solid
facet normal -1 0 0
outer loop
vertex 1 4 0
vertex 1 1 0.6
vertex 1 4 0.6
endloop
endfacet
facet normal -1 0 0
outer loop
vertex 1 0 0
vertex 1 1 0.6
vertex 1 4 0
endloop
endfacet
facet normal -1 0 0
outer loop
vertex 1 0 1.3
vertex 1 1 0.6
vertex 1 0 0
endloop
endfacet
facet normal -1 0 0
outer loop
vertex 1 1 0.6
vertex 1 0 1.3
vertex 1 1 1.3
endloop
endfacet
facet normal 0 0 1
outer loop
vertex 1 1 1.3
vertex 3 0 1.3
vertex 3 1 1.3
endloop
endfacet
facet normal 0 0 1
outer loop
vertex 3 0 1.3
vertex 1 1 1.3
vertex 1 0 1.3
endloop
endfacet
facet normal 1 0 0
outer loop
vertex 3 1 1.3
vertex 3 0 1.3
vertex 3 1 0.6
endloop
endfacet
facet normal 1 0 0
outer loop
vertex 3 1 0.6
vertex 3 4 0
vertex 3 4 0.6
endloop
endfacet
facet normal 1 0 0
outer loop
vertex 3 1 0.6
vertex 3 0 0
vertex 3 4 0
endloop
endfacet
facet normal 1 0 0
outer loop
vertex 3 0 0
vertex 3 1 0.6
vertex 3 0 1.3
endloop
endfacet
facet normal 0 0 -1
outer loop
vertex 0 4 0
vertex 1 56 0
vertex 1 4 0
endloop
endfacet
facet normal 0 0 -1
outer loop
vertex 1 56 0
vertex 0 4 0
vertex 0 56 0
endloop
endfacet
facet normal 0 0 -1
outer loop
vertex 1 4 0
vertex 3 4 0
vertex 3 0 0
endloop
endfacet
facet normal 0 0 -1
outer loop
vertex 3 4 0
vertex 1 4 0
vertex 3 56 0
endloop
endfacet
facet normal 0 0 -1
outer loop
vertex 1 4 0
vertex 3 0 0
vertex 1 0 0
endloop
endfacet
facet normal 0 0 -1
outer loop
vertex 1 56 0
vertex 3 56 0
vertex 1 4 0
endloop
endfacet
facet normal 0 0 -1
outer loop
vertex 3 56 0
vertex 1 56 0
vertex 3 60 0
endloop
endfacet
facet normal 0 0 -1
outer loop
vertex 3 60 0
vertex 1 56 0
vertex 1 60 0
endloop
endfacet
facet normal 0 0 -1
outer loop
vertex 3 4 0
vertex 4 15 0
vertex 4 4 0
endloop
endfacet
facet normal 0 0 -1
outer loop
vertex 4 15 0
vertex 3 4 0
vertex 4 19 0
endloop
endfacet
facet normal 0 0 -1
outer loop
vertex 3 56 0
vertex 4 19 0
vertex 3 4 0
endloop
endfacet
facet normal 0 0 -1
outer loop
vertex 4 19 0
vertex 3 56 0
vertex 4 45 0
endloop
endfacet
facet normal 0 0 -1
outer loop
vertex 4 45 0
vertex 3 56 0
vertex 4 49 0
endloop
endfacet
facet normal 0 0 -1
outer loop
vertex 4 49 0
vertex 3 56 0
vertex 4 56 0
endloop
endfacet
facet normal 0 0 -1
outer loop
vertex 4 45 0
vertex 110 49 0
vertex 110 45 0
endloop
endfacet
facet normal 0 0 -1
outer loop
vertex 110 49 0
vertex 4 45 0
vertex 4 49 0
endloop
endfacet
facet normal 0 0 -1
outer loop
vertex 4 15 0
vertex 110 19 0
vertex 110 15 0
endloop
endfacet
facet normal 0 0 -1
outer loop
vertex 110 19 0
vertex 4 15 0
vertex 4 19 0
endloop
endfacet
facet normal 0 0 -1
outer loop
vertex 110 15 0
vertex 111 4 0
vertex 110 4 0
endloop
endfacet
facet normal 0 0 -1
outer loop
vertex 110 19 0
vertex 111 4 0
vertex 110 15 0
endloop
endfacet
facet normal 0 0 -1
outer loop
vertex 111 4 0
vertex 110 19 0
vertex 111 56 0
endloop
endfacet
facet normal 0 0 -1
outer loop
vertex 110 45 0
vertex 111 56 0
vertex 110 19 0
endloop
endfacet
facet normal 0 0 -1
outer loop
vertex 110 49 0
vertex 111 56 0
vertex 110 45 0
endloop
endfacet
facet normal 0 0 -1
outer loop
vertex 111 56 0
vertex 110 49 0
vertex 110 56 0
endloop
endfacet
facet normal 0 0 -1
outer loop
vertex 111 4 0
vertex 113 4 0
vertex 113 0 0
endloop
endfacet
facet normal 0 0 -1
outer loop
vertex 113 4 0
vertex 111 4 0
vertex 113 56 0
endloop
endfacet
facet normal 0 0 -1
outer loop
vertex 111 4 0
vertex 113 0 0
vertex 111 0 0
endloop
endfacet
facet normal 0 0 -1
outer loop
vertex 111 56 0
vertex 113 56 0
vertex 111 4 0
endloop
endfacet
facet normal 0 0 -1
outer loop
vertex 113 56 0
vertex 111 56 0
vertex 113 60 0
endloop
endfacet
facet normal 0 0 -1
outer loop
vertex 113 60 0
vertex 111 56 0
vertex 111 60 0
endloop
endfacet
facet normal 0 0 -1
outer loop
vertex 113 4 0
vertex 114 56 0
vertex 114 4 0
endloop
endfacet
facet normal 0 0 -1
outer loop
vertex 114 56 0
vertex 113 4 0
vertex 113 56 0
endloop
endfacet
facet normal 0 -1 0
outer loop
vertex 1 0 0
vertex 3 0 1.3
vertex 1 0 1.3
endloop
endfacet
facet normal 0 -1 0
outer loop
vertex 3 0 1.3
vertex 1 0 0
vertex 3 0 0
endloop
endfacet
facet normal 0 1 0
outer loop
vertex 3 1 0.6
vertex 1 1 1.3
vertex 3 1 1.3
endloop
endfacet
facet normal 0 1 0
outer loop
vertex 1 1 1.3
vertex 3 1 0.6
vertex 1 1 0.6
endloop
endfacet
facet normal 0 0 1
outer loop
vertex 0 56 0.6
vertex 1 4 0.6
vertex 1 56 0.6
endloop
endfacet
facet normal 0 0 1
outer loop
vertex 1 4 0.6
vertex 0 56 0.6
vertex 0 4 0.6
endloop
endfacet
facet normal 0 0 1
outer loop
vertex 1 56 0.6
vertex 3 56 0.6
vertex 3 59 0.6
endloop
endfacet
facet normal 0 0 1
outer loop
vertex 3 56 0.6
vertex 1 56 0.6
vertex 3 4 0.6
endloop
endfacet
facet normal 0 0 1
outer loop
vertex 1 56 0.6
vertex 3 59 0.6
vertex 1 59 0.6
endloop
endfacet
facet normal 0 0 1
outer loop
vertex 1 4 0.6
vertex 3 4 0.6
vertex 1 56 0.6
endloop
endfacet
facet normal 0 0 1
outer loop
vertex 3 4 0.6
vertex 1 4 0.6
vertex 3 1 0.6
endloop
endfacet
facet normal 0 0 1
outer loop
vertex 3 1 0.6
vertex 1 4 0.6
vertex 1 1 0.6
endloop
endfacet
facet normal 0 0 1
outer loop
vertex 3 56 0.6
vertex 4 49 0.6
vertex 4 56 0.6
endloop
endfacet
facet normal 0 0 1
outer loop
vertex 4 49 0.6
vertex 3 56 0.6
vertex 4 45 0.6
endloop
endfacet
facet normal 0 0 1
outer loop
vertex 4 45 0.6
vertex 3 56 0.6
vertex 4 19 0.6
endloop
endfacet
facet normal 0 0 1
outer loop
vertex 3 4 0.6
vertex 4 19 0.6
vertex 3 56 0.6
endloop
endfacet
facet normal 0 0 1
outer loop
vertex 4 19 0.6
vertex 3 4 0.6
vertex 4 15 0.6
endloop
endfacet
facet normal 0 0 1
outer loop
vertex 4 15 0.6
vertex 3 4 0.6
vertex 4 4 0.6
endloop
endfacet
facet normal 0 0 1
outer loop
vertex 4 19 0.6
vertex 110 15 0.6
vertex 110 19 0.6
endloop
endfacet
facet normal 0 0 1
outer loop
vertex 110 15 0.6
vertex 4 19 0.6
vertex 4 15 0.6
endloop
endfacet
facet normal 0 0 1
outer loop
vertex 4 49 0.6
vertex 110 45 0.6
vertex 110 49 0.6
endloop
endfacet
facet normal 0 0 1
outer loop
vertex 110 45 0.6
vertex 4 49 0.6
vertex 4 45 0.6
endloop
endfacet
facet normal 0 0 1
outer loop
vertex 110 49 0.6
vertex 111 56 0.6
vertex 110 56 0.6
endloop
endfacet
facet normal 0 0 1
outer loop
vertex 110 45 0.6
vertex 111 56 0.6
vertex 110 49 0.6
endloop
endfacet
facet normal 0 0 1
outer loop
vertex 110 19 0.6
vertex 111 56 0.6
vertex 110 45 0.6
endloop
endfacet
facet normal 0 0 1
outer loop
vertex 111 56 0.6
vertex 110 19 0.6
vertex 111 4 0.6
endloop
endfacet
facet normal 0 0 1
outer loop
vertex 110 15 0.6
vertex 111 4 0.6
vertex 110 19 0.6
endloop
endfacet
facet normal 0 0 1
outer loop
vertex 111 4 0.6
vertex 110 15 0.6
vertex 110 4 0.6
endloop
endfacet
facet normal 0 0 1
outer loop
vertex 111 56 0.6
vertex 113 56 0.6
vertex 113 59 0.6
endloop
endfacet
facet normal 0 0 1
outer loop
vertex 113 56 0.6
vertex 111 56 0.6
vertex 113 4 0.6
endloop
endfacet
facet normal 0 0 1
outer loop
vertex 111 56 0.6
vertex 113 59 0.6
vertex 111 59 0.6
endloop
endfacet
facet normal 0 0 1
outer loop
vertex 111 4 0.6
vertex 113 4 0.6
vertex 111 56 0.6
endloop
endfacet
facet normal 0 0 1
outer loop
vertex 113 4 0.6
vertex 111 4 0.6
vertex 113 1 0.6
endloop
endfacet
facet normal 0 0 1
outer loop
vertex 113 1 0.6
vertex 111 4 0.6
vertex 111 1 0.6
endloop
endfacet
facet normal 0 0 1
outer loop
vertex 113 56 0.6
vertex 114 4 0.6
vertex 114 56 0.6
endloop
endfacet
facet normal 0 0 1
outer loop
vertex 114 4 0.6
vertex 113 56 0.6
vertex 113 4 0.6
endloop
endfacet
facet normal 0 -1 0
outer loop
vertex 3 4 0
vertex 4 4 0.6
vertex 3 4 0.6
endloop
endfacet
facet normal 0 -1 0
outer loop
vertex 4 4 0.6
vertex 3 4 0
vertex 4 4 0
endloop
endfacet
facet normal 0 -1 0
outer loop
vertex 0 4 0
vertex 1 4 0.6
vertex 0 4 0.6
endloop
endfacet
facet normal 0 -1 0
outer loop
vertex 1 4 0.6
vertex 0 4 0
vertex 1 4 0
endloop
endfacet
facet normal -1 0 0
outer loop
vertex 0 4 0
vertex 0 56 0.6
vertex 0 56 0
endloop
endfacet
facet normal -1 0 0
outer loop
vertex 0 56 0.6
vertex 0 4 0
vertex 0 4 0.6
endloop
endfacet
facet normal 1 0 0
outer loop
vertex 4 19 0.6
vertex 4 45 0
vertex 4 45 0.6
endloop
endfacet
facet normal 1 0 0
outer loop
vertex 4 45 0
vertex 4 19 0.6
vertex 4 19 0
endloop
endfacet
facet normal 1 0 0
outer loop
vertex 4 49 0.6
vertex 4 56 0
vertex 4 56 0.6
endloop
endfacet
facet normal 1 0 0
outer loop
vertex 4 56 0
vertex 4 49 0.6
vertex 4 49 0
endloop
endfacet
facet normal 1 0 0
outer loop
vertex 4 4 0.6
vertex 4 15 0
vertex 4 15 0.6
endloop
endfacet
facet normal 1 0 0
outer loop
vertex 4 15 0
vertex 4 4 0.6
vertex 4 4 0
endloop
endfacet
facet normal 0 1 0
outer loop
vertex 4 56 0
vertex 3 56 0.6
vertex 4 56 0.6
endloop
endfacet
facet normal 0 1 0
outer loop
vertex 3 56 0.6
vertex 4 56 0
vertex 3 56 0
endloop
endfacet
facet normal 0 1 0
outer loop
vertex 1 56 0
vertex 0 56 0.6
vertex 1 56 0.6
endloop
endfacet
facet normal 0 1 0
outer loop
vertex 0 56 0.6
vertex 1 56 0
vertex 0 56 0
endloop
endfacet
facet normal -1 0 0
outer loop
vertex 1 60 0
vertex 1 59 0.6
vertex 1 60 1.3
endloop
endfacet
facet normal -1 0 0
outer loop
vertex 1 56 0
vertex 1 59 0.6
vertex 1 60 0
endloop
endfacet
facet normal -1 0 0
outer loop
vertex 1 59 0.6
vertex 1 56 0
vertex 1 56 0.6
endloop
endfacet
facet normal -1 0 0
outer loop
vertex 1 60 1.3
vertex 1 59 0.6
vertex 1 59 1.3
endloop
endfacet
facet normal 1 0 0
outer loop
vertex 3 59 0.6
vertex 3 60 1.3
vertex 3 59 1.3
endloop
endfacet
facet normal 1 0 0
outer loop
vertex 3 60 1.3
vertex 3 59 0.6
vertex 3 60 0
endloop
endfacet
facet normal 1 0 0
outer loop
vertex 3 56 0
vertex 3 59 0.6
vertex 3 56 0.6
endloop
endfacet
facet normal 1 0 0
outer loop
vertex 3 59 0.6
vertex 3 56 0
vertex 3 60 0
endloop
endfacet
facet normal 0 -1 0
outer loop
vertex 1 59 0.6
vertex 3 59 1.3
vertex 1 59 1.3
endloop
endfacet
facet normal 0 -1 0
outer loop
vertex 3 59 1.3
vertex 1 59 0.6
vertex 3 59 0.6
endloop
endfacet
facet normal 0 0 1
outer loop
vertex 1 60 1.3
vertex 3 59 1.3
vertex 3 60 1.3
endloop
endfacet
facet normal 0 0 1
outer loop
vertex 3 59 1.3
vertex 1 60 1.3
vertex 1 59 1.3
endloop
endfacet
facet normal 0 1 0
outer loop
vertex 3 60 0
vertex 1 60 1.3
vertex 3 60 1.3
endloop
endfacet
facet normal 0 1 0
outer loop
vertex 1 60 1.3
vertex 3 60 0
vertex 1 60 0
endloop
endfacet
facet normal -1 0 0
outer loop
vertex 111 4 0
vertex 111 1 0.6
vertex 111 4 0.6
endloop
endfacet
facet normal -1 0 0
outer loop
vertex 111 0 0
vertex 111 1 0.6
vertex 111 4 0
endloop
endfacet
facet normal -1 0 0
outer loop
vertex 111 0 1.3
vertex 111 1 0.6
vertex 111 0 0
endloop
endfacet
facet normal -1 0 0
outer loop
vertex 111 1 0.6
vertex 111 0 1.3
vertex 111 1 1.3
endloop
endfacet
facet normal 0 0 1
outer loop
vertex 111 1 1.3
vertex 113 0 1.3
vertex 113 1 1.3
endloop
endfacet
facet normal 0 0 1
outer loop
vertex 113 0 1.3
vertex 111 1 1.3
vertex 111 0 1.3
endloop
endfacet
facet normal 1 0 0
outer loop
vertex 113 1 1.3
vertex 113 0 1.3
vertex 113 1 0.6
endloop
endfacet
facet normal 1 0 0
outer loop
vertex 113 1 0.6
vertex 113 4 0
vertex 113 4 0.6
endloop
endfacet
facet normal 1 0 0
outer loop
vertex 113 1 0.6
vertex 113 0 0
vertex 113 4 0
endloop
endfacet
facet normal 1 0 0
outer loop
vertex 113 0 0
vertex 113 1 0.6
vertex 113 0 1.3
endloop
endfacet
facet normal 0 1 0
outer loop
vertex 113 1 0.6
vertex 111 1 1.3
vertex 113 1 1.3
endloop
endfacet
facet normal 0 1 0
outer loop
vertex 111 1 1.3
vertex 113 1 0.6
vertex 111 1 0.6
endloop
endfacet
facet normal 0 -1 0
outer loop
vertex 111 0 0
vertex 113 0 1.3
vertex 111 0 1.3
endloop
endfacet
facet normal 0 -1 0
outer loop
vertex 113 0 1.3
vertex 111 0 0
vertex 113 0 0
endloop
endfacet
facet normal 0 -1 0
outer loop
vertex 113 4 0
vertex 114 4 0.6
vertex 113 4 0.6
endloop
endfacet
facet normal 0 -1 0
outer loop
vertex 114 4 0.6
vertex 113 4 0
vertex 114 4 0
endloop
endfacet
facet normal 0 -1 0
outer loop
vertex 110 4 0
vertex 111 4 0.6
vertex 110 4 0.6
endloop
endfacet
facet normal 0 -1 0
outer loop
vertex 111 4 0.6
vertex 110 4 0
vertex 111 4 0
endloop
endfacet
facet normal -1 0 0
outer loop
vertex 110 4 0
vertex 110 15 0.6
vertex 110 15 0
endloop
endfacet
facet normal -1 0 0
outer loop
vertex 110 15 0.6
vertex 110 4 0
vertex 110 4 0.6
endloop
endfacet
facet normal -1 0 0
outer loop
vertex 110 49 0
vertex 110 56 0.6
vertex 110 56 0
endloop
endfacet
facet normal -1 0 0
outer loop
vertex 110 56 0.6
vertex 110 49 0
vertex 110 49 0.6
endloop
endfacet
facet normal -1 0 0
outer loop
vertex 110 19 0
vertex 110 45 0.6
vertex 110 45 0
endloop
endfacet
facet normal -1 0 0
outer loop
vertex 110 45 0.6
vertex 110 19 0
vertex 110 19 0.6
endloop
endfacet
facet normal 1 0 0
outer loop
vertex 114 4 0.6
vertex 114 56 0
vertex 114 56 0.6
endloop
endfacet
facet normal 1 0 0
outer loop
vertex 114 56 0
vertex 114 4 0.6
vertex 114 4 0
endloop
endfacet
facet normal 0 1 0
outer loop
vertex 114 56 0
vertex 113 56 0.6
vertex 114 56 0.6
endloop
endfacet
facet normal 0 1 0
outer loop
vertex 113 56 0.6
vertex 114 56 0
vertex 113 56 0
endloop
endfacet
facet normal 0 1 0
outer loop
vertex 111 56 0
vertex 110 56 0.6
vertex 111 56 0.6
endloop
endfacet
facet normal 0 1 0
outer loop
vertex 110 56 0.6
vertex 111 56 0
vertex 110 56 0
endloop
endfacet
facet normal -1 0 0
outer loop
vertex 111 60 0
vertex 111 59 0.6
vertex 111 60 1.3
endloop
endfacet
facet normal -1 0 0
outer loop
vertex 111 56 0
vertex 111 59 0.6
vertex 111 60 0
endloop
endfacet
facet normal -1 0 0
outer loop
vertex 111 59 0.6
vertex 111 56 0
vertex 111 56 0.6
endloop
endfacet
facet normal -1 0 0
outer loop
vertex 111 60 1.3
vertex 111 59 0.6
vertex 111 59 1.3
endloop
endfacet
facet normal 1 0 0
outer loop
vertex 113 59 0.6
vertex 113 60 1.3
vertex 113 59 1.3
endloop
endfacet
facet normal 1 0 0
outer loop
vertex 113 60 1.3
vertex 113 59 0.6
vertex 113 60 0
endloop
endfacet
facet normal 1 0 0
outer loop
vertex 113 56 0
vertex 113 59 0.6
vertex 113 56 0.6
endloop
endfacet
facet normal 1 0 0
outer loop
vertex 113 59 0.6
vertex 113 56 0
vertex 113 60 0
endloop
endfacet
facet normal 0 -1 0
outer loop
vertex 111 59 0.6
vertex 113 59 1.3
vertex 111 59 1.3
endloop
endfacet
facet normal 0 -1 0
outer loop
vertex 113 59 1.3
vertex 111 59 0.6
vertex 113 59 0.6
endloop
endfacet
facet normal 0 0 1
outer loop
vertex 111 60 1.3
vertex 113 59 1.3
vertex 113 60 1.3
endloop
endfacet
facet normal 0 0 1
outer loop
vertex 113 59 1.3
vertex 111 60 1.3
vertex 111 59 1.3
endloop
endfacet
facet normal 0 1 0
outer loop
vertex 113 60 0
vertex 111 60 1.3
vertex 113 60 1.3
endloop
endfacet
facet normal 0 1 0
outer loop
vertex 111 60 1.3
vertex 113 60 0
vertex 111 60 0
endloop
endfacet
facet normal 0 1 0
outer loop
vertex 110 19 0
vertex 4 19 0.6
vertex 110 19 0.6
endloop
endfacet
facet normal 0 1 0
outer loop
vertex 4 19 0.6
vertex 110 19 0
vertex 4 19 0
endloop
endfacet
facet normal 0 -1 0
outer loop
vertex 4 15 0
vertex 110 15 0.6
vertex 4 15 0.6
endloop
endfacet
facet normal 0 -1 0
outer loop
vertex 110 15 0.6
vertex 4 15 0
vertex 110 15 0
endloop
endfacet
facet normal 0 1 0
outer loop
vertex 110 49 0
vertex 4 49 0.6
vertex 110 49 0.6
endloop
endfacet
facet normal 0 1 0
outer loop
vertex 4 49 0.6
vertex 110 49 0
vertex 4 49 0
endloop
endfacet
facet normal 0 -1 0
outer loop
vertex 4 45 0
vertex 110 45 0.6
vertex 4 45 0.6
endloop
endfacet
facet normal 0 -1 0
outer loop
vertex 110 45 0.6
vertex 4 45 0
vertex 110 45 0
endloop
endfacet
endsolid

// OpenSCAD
module bar (x, y)
{
  translate ([x, y, 0]) {
    translate ([1, 0, 0])
      cube ([2, 1, 1.3]);
    translate ([1, 1, 0])
      cube ([2, 3, 0.6]);
    translate ([0, 4, 0])
      cube ([4, 60 - (4 * 2), 0.6]);
    translate ([1, 60 - 4, 0])
      cube ([2, 3, 0.6]);
    translate ([1, (60 - 4) + 3, 0])
      cube ([2, 1, 1.3]);
  }
}

bar (0, 0);
bar (110, 0);

translate ([4, 15, 0])
  cube ([110, 4, 0.6]);
translate ([4, 45, 0])
  cube ([110, 4, 0.6]);
  
